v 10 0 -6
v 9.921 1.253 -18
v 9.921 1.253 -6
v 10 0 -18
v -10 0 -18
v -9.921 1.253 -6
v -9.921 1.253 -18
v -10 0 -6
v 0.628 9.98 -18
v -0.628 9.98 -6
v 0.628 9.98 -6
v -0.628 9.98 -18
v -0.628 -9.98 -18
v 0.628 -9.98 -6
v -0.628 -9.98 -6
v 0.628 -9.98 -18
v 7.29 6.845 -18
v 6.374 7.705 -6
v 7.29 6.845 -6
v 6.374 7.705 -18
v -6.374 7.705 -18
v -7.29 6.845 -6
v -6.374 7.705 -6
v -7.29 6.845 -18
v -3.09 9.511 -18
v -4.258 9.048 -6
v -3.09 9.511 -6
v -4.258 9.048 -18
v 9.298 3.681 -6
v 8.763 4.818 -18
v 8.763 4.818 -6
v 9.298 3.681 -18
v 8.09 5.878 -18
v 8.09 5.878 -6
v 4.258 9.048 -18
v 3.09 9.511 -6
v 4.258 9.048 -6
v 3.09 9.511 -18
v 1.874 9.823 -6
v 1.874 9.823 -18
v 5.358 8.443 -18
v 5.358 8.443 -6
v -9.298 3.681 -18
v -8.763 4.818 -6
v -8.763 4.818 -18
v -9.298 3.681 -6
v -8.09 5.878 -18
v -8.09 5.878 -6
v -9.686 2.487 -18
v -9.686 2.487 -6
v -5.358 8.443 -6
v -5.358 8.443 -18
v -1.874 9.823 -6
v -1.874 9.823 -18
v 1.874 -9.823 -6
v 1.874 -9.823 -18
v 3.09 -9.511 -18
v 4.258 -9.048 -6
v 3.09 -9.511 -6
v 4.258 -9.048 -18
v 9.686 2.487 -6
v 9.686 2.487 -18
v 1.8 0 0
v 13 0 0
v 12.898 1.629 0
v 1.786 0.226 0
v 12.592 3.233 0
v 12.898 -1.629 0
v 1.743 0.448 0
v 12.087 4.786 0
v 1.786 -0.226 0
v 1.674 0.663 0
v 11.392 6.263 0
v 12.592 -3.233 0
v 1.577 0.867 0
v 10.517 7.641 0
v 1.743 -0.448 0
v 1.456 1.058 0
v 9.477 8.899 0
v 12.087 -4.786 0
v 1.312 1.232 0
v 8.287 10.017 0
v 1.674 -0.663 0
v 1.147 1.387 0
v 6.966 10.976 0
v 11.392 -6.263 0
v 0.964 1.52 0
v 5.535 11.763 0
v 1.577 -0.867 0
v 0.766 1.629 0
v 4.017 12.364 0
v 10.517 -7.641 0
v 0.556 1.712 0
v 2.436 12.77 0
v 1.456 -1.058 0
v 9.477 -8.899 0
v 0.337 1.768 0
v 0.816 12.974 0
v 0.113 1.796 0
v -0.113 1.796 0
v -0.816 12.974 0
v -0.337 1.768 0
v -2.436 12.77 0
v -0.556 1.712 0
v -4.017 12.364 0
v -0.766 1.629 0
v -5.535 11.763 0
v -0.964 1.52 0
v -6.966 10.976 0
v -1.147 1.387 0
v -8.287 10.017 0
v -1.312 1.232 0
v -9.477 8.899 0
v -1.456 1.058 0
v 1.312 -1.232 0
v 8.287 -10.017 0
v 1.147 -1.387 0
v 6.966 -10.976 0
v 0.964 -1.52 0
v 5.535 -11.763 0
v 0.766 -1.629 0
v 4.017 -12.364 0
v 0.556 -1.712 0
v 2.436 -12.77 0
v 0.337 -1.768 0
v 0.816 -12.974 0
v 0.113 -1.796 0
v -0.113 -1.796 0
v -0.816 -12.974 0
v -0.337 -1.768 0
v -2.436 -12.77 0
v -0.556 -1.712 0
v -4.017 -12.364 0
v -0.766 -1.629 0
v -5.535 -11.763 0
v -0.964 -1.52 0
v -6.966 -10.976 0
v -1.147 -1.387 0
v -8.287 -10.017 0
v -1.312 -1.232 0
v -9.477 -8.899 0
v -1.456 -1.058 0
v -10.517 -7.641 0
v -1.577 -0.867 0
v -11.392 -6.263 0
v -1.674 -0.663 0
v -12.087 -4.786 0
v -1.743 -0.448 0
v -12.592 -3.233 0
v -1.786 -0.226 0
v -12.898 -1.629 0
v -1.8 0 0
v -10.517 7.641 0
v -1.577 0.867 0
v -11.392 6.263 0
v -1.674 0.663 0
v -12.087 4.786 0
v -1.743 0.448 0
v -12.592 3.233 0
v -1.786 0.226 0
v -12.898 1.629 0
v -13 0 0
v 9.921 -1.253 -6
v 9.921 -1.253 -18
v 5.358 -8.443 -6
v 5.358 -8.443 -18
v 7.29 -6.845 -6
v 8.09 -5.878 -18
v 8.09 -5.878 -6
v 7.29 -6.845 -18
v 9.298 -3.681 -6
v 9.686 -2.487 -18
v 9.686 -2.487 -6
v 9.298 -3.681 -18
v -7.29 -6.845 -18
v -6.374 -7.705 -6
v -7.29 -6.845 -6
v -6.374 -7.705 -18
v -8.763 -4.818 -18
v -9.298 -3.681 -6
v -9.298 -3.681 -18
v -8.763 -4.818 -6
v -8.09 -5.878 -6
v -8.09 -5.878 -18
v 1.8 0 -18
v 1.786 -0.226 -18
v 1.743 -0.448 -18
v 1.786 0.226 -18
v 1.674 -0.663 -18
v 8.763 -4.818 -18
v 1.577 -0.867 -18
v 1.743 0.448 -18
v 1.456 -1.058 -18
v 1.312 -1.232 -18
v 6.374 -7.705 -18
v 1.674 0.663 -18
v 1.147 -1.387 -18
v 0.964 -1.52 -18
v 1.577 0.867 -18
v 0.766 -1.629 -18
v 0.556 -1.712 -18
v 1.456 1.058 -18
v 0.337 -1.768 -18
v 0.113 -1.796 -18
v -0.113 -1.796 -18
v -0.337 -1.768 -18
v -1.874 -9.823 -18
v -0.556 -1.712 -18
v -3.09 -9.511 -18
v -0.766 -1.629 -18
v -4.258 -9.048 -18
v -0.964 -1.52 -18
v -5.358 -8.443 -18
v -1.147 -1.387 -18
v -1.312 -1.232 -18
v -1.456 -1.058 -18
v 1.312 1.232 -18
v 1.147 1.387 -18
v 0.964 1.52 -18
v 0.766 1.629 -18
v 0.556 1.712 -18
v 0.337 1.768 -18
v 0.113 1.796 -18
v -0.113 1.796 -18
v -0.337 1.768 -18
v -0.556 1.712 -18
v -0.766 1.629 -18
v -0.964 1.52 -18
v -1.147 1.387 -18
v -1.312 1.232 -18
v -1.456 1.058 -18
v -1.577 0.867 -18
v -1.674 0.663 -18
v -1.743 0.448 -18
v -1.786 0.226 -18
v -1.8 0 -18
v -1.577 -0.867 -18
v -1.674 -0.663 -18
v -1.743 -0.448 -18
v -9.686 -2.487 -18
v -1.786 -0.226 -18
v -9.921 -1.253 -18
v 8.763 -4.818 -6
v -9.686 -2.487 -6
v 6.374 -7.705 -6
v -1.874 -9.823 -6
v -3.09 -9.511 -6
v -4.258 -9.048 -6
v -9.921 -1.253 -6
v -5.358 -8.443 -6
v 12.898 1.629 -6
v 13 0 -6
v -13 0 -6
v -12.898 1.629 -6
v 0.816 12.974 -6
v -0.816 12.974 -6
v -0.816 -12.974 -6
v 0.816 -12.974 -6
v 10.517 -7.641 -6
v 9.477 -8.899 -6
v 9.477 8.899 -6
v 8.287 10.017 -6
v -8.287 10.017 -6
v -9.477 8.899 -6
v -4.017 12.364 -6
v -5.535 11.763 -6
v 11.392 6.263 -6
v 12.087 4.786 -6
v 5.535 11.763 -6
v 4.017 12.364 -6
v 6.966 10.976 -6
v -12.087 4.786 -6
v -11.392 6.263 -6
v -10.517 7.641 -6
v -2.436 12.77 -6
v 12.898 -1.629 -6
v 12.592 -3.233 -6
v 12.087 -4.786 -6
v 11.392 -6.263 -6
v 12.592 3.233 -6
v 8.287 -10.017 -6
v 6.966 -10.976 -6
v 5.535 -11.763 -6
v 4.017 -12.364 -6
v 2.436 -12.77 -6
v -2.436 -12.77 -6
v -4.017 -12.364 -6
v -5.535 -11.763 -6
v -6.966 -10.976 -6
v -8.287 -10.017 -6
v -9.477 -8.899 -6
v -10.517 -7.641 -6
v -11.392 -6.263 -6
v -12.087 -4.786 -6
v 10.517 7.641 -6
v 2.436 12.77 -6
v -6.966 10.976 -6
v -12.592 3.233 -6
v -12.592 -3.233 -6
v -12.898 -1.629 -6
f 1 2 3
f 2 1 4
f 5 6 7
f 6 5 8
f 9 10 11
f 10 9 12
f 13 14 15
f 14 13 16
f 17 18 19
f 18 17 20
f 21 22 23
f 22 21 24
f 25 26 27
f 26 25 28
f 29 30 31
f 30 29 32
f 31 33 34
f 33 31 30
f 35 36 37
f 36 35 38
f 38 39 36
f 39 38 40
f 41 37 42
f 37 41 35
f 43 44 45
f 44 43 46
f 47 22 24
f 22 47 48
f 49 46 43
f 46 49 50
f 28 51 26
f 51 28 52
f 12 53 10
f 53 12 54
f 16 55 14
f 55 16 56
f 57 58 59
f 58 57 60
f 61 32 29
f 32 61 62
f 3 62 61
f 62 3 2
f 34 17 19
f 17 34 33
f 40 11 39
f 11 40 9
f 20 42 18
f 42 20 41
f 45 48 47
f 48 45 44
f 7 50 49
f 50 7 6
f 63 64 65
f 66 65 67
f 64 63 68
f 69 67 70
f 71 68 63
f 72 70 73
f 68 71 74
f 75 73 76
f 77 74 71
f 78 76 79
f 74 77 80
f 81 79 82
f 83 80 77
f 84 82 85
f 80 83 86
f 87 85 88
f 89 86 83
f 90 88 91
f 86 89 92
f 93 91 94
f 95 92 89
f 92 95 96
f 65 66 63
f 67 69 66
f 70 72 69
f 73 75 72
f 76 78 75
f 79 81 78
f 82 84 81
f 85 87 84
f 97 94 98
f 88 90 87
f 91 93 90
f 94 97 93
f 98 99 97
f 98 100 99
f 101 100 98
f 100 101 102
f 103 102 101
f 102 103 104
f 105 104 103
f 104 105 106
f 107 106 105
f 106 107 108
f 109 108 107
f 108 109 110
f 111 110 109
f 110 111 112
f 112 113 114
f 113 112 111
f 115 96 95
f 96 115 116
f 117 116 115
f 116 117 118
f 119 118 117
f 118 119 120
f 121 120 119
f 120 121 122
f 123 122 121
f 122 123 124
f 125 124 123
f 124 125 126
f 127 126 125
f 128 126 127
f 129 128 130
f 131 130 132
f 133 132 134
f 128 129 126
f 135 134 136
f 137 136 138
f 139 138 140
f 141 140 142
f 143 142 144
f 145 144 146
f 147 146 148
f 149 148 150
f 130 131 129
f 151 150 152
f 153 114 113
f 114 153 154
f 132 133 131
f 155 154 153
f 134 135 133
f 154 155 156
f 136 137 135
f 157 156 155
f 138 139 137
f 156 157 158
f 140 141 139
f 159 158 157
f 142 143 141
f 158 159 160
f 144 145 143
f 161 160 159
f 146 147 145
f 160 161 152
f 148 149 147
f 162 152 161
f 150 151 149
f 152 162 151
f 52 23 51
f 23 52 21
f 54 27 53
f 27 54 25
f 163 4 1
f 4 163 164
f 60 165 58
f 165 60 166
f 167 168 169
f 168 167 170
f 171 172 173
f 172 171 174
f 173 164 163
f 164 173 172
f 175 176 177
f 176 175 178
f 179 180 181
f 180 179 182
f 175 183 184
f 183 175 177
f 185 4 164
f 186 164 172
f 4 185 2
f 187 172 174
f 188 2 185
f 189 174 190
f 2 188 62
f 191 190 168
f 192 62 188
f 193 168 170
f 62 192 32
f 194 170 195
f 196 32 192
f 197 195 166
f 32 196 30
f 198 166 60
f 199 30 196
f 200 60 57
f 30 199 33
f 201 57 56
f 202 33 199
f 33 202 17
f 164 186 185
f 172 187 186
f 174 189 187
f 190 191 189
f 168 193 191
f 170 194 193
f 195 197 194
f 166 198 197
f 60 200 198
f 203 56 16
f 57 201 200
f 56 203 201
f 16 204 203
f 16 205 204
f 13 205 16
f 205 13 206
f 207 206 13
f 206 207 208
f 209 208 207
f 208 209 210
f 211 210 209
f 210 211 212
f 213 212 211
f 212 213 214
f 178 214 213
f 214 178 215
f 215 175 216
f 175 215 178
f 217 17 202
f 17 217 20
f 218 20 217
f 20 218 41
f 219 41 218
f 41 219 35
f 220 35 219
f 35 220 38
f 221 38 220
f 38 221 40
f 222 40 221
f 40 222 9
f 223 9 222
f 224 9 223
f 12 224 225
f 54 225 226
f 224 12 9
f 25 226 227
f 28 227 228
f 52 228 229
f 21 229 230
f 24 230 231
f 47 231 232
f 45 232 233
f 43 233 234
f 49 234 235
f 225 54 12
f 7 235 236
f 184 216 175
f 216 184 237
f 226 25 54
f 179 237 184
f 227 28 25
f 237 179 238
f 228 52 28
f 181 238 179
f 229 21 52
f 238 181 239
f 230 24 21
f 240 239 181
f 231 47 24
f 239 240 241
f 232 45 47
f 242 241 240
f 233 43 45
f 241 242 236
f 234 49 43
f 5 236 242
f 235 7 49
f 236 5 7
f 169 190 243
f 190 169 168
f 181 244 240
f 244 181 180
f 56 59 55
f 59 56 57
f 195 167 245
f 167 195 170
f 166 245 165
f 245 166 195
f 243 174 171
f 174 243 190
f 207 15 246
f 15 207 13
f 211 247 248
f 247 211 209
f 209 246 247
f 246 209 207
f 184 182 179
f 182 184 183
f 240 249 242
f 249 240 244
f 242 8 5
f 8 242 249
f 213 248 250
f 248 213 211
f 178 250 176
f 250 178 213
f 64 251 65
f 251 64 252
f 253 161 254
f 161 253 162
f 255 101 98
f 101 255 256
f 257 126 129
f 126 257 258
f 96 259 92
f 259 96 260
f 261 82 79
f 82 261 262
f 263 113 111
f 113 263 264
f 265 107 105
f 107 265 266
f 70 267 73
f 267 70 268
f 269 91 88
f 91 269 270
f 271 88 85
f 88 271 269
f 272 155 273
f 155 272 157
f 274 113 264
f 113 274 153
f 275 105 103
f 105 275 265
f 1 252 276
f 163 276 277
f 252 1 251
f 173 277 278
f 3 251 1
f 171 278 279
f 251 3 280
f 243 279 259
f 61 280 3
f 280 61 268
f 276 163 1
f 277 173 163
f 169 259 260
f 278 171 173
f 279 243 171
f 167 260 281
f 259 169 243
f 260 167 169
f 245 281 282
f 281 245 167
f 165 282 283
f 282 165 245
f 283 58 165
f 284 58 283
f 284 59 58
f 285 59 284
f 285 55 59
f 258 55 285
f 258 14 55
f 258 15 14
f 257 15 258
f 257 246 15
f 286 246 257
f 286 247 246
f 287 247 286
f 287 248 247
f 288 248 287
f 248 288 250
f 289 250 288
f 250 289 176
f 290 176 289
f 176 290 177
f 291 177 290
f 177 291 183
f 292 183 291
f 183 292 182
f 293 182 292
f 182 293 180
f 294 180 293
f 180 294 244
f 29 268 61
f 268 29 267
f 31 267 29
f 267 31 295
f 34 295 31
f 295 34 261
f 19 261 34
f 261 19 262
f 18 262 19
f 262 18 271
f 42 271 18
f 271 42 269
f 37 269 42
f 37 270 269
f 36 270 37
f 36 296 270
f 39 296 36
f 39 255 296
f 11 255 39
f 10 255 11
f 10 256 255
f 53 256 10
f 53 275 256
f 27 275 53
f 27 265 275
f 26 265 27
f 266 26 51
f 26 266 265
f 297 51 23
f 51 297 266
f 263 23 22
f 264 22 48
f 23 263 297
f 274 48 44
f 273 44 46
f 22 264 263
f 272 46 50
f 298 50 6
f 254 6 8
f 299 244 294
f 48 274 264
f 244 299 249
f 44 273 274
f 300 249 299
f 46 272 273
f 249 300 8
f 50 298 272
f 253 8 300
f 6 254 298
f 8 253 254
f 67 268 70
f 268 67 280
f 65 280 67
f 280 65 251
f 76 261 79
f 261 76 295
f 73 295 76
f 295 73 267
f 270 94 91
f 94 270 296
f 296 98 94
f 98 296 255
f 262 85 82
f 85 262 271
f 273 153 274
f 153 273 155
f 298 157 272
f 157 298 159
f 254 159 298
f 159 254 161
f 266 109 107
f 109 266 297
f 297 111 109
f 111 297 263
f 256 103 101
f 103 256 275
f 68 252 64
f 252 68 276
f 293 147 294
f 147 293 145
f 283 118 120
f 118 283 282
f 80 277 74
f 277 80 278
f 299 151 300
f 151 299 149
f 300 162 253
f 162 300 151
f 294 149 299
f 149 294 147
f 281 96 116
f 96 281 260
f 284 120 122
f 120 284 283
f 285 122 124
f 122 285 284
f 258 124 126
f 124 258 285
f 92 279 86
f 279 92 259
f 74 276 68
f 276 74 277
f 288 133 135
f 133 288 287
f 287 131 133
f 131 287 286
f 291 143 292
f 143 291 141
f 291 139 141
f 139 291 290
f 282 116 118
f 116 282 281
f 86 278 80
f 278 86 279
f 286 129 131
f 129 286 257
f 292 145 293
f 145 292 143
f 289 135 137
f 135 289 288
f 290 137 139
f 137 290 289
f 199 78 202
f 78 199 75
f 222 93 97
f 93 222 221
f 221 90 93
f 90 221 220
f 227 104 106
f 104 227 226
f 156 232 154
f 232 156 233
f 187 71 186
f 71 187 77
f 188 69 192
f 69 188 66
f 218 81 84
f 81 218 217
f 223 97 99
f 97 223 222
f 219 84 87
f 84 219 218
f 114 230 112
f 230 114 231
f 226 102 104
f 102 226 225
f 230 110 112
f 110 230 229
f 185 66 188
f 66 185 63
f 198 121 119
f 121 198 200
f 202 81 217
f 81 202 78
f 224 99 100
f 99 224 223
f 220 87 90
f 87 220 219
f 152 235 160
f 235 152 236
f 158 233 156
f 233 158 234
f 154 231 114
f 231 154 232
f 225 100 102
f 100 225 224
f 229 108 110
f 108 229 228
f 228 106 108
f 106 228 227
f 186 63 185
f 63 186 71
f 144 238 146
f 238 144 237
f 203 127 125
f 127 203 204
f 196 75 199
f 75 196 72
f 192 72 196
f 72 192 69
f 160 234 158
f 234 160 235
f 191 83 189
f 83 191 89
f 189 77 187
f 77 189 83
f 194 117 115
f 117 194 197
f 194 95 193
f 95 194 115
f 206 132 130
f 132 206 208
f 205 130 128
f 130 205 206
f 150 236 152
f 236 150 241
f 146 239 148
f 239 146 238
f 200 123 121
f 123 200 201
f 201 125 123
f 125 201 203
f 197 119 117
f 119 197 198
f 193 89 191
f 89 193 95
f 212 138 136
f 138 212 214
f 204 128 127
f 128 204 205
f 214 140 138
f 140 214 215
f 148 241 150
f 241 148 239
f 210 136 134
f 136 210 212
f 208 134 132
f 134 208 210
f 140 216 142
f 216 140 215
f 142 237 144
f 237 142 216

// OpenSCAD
$fn = 50;


difference() {
	union() {
		translate(v = [0, 0, -18.0000000000]) {
			cylinder(h = 18, r = 10.0000000000);
		}
		translate(v = [0, 0, -6.0000000000]) {
			cylinder(h = 6, r = 13.0000000000);
		}
	}
	union() {
		#translate(v = [0, 0, -18]) {
			cylinder(h = 18, r = 1.8000000000);
		}
	}
}
